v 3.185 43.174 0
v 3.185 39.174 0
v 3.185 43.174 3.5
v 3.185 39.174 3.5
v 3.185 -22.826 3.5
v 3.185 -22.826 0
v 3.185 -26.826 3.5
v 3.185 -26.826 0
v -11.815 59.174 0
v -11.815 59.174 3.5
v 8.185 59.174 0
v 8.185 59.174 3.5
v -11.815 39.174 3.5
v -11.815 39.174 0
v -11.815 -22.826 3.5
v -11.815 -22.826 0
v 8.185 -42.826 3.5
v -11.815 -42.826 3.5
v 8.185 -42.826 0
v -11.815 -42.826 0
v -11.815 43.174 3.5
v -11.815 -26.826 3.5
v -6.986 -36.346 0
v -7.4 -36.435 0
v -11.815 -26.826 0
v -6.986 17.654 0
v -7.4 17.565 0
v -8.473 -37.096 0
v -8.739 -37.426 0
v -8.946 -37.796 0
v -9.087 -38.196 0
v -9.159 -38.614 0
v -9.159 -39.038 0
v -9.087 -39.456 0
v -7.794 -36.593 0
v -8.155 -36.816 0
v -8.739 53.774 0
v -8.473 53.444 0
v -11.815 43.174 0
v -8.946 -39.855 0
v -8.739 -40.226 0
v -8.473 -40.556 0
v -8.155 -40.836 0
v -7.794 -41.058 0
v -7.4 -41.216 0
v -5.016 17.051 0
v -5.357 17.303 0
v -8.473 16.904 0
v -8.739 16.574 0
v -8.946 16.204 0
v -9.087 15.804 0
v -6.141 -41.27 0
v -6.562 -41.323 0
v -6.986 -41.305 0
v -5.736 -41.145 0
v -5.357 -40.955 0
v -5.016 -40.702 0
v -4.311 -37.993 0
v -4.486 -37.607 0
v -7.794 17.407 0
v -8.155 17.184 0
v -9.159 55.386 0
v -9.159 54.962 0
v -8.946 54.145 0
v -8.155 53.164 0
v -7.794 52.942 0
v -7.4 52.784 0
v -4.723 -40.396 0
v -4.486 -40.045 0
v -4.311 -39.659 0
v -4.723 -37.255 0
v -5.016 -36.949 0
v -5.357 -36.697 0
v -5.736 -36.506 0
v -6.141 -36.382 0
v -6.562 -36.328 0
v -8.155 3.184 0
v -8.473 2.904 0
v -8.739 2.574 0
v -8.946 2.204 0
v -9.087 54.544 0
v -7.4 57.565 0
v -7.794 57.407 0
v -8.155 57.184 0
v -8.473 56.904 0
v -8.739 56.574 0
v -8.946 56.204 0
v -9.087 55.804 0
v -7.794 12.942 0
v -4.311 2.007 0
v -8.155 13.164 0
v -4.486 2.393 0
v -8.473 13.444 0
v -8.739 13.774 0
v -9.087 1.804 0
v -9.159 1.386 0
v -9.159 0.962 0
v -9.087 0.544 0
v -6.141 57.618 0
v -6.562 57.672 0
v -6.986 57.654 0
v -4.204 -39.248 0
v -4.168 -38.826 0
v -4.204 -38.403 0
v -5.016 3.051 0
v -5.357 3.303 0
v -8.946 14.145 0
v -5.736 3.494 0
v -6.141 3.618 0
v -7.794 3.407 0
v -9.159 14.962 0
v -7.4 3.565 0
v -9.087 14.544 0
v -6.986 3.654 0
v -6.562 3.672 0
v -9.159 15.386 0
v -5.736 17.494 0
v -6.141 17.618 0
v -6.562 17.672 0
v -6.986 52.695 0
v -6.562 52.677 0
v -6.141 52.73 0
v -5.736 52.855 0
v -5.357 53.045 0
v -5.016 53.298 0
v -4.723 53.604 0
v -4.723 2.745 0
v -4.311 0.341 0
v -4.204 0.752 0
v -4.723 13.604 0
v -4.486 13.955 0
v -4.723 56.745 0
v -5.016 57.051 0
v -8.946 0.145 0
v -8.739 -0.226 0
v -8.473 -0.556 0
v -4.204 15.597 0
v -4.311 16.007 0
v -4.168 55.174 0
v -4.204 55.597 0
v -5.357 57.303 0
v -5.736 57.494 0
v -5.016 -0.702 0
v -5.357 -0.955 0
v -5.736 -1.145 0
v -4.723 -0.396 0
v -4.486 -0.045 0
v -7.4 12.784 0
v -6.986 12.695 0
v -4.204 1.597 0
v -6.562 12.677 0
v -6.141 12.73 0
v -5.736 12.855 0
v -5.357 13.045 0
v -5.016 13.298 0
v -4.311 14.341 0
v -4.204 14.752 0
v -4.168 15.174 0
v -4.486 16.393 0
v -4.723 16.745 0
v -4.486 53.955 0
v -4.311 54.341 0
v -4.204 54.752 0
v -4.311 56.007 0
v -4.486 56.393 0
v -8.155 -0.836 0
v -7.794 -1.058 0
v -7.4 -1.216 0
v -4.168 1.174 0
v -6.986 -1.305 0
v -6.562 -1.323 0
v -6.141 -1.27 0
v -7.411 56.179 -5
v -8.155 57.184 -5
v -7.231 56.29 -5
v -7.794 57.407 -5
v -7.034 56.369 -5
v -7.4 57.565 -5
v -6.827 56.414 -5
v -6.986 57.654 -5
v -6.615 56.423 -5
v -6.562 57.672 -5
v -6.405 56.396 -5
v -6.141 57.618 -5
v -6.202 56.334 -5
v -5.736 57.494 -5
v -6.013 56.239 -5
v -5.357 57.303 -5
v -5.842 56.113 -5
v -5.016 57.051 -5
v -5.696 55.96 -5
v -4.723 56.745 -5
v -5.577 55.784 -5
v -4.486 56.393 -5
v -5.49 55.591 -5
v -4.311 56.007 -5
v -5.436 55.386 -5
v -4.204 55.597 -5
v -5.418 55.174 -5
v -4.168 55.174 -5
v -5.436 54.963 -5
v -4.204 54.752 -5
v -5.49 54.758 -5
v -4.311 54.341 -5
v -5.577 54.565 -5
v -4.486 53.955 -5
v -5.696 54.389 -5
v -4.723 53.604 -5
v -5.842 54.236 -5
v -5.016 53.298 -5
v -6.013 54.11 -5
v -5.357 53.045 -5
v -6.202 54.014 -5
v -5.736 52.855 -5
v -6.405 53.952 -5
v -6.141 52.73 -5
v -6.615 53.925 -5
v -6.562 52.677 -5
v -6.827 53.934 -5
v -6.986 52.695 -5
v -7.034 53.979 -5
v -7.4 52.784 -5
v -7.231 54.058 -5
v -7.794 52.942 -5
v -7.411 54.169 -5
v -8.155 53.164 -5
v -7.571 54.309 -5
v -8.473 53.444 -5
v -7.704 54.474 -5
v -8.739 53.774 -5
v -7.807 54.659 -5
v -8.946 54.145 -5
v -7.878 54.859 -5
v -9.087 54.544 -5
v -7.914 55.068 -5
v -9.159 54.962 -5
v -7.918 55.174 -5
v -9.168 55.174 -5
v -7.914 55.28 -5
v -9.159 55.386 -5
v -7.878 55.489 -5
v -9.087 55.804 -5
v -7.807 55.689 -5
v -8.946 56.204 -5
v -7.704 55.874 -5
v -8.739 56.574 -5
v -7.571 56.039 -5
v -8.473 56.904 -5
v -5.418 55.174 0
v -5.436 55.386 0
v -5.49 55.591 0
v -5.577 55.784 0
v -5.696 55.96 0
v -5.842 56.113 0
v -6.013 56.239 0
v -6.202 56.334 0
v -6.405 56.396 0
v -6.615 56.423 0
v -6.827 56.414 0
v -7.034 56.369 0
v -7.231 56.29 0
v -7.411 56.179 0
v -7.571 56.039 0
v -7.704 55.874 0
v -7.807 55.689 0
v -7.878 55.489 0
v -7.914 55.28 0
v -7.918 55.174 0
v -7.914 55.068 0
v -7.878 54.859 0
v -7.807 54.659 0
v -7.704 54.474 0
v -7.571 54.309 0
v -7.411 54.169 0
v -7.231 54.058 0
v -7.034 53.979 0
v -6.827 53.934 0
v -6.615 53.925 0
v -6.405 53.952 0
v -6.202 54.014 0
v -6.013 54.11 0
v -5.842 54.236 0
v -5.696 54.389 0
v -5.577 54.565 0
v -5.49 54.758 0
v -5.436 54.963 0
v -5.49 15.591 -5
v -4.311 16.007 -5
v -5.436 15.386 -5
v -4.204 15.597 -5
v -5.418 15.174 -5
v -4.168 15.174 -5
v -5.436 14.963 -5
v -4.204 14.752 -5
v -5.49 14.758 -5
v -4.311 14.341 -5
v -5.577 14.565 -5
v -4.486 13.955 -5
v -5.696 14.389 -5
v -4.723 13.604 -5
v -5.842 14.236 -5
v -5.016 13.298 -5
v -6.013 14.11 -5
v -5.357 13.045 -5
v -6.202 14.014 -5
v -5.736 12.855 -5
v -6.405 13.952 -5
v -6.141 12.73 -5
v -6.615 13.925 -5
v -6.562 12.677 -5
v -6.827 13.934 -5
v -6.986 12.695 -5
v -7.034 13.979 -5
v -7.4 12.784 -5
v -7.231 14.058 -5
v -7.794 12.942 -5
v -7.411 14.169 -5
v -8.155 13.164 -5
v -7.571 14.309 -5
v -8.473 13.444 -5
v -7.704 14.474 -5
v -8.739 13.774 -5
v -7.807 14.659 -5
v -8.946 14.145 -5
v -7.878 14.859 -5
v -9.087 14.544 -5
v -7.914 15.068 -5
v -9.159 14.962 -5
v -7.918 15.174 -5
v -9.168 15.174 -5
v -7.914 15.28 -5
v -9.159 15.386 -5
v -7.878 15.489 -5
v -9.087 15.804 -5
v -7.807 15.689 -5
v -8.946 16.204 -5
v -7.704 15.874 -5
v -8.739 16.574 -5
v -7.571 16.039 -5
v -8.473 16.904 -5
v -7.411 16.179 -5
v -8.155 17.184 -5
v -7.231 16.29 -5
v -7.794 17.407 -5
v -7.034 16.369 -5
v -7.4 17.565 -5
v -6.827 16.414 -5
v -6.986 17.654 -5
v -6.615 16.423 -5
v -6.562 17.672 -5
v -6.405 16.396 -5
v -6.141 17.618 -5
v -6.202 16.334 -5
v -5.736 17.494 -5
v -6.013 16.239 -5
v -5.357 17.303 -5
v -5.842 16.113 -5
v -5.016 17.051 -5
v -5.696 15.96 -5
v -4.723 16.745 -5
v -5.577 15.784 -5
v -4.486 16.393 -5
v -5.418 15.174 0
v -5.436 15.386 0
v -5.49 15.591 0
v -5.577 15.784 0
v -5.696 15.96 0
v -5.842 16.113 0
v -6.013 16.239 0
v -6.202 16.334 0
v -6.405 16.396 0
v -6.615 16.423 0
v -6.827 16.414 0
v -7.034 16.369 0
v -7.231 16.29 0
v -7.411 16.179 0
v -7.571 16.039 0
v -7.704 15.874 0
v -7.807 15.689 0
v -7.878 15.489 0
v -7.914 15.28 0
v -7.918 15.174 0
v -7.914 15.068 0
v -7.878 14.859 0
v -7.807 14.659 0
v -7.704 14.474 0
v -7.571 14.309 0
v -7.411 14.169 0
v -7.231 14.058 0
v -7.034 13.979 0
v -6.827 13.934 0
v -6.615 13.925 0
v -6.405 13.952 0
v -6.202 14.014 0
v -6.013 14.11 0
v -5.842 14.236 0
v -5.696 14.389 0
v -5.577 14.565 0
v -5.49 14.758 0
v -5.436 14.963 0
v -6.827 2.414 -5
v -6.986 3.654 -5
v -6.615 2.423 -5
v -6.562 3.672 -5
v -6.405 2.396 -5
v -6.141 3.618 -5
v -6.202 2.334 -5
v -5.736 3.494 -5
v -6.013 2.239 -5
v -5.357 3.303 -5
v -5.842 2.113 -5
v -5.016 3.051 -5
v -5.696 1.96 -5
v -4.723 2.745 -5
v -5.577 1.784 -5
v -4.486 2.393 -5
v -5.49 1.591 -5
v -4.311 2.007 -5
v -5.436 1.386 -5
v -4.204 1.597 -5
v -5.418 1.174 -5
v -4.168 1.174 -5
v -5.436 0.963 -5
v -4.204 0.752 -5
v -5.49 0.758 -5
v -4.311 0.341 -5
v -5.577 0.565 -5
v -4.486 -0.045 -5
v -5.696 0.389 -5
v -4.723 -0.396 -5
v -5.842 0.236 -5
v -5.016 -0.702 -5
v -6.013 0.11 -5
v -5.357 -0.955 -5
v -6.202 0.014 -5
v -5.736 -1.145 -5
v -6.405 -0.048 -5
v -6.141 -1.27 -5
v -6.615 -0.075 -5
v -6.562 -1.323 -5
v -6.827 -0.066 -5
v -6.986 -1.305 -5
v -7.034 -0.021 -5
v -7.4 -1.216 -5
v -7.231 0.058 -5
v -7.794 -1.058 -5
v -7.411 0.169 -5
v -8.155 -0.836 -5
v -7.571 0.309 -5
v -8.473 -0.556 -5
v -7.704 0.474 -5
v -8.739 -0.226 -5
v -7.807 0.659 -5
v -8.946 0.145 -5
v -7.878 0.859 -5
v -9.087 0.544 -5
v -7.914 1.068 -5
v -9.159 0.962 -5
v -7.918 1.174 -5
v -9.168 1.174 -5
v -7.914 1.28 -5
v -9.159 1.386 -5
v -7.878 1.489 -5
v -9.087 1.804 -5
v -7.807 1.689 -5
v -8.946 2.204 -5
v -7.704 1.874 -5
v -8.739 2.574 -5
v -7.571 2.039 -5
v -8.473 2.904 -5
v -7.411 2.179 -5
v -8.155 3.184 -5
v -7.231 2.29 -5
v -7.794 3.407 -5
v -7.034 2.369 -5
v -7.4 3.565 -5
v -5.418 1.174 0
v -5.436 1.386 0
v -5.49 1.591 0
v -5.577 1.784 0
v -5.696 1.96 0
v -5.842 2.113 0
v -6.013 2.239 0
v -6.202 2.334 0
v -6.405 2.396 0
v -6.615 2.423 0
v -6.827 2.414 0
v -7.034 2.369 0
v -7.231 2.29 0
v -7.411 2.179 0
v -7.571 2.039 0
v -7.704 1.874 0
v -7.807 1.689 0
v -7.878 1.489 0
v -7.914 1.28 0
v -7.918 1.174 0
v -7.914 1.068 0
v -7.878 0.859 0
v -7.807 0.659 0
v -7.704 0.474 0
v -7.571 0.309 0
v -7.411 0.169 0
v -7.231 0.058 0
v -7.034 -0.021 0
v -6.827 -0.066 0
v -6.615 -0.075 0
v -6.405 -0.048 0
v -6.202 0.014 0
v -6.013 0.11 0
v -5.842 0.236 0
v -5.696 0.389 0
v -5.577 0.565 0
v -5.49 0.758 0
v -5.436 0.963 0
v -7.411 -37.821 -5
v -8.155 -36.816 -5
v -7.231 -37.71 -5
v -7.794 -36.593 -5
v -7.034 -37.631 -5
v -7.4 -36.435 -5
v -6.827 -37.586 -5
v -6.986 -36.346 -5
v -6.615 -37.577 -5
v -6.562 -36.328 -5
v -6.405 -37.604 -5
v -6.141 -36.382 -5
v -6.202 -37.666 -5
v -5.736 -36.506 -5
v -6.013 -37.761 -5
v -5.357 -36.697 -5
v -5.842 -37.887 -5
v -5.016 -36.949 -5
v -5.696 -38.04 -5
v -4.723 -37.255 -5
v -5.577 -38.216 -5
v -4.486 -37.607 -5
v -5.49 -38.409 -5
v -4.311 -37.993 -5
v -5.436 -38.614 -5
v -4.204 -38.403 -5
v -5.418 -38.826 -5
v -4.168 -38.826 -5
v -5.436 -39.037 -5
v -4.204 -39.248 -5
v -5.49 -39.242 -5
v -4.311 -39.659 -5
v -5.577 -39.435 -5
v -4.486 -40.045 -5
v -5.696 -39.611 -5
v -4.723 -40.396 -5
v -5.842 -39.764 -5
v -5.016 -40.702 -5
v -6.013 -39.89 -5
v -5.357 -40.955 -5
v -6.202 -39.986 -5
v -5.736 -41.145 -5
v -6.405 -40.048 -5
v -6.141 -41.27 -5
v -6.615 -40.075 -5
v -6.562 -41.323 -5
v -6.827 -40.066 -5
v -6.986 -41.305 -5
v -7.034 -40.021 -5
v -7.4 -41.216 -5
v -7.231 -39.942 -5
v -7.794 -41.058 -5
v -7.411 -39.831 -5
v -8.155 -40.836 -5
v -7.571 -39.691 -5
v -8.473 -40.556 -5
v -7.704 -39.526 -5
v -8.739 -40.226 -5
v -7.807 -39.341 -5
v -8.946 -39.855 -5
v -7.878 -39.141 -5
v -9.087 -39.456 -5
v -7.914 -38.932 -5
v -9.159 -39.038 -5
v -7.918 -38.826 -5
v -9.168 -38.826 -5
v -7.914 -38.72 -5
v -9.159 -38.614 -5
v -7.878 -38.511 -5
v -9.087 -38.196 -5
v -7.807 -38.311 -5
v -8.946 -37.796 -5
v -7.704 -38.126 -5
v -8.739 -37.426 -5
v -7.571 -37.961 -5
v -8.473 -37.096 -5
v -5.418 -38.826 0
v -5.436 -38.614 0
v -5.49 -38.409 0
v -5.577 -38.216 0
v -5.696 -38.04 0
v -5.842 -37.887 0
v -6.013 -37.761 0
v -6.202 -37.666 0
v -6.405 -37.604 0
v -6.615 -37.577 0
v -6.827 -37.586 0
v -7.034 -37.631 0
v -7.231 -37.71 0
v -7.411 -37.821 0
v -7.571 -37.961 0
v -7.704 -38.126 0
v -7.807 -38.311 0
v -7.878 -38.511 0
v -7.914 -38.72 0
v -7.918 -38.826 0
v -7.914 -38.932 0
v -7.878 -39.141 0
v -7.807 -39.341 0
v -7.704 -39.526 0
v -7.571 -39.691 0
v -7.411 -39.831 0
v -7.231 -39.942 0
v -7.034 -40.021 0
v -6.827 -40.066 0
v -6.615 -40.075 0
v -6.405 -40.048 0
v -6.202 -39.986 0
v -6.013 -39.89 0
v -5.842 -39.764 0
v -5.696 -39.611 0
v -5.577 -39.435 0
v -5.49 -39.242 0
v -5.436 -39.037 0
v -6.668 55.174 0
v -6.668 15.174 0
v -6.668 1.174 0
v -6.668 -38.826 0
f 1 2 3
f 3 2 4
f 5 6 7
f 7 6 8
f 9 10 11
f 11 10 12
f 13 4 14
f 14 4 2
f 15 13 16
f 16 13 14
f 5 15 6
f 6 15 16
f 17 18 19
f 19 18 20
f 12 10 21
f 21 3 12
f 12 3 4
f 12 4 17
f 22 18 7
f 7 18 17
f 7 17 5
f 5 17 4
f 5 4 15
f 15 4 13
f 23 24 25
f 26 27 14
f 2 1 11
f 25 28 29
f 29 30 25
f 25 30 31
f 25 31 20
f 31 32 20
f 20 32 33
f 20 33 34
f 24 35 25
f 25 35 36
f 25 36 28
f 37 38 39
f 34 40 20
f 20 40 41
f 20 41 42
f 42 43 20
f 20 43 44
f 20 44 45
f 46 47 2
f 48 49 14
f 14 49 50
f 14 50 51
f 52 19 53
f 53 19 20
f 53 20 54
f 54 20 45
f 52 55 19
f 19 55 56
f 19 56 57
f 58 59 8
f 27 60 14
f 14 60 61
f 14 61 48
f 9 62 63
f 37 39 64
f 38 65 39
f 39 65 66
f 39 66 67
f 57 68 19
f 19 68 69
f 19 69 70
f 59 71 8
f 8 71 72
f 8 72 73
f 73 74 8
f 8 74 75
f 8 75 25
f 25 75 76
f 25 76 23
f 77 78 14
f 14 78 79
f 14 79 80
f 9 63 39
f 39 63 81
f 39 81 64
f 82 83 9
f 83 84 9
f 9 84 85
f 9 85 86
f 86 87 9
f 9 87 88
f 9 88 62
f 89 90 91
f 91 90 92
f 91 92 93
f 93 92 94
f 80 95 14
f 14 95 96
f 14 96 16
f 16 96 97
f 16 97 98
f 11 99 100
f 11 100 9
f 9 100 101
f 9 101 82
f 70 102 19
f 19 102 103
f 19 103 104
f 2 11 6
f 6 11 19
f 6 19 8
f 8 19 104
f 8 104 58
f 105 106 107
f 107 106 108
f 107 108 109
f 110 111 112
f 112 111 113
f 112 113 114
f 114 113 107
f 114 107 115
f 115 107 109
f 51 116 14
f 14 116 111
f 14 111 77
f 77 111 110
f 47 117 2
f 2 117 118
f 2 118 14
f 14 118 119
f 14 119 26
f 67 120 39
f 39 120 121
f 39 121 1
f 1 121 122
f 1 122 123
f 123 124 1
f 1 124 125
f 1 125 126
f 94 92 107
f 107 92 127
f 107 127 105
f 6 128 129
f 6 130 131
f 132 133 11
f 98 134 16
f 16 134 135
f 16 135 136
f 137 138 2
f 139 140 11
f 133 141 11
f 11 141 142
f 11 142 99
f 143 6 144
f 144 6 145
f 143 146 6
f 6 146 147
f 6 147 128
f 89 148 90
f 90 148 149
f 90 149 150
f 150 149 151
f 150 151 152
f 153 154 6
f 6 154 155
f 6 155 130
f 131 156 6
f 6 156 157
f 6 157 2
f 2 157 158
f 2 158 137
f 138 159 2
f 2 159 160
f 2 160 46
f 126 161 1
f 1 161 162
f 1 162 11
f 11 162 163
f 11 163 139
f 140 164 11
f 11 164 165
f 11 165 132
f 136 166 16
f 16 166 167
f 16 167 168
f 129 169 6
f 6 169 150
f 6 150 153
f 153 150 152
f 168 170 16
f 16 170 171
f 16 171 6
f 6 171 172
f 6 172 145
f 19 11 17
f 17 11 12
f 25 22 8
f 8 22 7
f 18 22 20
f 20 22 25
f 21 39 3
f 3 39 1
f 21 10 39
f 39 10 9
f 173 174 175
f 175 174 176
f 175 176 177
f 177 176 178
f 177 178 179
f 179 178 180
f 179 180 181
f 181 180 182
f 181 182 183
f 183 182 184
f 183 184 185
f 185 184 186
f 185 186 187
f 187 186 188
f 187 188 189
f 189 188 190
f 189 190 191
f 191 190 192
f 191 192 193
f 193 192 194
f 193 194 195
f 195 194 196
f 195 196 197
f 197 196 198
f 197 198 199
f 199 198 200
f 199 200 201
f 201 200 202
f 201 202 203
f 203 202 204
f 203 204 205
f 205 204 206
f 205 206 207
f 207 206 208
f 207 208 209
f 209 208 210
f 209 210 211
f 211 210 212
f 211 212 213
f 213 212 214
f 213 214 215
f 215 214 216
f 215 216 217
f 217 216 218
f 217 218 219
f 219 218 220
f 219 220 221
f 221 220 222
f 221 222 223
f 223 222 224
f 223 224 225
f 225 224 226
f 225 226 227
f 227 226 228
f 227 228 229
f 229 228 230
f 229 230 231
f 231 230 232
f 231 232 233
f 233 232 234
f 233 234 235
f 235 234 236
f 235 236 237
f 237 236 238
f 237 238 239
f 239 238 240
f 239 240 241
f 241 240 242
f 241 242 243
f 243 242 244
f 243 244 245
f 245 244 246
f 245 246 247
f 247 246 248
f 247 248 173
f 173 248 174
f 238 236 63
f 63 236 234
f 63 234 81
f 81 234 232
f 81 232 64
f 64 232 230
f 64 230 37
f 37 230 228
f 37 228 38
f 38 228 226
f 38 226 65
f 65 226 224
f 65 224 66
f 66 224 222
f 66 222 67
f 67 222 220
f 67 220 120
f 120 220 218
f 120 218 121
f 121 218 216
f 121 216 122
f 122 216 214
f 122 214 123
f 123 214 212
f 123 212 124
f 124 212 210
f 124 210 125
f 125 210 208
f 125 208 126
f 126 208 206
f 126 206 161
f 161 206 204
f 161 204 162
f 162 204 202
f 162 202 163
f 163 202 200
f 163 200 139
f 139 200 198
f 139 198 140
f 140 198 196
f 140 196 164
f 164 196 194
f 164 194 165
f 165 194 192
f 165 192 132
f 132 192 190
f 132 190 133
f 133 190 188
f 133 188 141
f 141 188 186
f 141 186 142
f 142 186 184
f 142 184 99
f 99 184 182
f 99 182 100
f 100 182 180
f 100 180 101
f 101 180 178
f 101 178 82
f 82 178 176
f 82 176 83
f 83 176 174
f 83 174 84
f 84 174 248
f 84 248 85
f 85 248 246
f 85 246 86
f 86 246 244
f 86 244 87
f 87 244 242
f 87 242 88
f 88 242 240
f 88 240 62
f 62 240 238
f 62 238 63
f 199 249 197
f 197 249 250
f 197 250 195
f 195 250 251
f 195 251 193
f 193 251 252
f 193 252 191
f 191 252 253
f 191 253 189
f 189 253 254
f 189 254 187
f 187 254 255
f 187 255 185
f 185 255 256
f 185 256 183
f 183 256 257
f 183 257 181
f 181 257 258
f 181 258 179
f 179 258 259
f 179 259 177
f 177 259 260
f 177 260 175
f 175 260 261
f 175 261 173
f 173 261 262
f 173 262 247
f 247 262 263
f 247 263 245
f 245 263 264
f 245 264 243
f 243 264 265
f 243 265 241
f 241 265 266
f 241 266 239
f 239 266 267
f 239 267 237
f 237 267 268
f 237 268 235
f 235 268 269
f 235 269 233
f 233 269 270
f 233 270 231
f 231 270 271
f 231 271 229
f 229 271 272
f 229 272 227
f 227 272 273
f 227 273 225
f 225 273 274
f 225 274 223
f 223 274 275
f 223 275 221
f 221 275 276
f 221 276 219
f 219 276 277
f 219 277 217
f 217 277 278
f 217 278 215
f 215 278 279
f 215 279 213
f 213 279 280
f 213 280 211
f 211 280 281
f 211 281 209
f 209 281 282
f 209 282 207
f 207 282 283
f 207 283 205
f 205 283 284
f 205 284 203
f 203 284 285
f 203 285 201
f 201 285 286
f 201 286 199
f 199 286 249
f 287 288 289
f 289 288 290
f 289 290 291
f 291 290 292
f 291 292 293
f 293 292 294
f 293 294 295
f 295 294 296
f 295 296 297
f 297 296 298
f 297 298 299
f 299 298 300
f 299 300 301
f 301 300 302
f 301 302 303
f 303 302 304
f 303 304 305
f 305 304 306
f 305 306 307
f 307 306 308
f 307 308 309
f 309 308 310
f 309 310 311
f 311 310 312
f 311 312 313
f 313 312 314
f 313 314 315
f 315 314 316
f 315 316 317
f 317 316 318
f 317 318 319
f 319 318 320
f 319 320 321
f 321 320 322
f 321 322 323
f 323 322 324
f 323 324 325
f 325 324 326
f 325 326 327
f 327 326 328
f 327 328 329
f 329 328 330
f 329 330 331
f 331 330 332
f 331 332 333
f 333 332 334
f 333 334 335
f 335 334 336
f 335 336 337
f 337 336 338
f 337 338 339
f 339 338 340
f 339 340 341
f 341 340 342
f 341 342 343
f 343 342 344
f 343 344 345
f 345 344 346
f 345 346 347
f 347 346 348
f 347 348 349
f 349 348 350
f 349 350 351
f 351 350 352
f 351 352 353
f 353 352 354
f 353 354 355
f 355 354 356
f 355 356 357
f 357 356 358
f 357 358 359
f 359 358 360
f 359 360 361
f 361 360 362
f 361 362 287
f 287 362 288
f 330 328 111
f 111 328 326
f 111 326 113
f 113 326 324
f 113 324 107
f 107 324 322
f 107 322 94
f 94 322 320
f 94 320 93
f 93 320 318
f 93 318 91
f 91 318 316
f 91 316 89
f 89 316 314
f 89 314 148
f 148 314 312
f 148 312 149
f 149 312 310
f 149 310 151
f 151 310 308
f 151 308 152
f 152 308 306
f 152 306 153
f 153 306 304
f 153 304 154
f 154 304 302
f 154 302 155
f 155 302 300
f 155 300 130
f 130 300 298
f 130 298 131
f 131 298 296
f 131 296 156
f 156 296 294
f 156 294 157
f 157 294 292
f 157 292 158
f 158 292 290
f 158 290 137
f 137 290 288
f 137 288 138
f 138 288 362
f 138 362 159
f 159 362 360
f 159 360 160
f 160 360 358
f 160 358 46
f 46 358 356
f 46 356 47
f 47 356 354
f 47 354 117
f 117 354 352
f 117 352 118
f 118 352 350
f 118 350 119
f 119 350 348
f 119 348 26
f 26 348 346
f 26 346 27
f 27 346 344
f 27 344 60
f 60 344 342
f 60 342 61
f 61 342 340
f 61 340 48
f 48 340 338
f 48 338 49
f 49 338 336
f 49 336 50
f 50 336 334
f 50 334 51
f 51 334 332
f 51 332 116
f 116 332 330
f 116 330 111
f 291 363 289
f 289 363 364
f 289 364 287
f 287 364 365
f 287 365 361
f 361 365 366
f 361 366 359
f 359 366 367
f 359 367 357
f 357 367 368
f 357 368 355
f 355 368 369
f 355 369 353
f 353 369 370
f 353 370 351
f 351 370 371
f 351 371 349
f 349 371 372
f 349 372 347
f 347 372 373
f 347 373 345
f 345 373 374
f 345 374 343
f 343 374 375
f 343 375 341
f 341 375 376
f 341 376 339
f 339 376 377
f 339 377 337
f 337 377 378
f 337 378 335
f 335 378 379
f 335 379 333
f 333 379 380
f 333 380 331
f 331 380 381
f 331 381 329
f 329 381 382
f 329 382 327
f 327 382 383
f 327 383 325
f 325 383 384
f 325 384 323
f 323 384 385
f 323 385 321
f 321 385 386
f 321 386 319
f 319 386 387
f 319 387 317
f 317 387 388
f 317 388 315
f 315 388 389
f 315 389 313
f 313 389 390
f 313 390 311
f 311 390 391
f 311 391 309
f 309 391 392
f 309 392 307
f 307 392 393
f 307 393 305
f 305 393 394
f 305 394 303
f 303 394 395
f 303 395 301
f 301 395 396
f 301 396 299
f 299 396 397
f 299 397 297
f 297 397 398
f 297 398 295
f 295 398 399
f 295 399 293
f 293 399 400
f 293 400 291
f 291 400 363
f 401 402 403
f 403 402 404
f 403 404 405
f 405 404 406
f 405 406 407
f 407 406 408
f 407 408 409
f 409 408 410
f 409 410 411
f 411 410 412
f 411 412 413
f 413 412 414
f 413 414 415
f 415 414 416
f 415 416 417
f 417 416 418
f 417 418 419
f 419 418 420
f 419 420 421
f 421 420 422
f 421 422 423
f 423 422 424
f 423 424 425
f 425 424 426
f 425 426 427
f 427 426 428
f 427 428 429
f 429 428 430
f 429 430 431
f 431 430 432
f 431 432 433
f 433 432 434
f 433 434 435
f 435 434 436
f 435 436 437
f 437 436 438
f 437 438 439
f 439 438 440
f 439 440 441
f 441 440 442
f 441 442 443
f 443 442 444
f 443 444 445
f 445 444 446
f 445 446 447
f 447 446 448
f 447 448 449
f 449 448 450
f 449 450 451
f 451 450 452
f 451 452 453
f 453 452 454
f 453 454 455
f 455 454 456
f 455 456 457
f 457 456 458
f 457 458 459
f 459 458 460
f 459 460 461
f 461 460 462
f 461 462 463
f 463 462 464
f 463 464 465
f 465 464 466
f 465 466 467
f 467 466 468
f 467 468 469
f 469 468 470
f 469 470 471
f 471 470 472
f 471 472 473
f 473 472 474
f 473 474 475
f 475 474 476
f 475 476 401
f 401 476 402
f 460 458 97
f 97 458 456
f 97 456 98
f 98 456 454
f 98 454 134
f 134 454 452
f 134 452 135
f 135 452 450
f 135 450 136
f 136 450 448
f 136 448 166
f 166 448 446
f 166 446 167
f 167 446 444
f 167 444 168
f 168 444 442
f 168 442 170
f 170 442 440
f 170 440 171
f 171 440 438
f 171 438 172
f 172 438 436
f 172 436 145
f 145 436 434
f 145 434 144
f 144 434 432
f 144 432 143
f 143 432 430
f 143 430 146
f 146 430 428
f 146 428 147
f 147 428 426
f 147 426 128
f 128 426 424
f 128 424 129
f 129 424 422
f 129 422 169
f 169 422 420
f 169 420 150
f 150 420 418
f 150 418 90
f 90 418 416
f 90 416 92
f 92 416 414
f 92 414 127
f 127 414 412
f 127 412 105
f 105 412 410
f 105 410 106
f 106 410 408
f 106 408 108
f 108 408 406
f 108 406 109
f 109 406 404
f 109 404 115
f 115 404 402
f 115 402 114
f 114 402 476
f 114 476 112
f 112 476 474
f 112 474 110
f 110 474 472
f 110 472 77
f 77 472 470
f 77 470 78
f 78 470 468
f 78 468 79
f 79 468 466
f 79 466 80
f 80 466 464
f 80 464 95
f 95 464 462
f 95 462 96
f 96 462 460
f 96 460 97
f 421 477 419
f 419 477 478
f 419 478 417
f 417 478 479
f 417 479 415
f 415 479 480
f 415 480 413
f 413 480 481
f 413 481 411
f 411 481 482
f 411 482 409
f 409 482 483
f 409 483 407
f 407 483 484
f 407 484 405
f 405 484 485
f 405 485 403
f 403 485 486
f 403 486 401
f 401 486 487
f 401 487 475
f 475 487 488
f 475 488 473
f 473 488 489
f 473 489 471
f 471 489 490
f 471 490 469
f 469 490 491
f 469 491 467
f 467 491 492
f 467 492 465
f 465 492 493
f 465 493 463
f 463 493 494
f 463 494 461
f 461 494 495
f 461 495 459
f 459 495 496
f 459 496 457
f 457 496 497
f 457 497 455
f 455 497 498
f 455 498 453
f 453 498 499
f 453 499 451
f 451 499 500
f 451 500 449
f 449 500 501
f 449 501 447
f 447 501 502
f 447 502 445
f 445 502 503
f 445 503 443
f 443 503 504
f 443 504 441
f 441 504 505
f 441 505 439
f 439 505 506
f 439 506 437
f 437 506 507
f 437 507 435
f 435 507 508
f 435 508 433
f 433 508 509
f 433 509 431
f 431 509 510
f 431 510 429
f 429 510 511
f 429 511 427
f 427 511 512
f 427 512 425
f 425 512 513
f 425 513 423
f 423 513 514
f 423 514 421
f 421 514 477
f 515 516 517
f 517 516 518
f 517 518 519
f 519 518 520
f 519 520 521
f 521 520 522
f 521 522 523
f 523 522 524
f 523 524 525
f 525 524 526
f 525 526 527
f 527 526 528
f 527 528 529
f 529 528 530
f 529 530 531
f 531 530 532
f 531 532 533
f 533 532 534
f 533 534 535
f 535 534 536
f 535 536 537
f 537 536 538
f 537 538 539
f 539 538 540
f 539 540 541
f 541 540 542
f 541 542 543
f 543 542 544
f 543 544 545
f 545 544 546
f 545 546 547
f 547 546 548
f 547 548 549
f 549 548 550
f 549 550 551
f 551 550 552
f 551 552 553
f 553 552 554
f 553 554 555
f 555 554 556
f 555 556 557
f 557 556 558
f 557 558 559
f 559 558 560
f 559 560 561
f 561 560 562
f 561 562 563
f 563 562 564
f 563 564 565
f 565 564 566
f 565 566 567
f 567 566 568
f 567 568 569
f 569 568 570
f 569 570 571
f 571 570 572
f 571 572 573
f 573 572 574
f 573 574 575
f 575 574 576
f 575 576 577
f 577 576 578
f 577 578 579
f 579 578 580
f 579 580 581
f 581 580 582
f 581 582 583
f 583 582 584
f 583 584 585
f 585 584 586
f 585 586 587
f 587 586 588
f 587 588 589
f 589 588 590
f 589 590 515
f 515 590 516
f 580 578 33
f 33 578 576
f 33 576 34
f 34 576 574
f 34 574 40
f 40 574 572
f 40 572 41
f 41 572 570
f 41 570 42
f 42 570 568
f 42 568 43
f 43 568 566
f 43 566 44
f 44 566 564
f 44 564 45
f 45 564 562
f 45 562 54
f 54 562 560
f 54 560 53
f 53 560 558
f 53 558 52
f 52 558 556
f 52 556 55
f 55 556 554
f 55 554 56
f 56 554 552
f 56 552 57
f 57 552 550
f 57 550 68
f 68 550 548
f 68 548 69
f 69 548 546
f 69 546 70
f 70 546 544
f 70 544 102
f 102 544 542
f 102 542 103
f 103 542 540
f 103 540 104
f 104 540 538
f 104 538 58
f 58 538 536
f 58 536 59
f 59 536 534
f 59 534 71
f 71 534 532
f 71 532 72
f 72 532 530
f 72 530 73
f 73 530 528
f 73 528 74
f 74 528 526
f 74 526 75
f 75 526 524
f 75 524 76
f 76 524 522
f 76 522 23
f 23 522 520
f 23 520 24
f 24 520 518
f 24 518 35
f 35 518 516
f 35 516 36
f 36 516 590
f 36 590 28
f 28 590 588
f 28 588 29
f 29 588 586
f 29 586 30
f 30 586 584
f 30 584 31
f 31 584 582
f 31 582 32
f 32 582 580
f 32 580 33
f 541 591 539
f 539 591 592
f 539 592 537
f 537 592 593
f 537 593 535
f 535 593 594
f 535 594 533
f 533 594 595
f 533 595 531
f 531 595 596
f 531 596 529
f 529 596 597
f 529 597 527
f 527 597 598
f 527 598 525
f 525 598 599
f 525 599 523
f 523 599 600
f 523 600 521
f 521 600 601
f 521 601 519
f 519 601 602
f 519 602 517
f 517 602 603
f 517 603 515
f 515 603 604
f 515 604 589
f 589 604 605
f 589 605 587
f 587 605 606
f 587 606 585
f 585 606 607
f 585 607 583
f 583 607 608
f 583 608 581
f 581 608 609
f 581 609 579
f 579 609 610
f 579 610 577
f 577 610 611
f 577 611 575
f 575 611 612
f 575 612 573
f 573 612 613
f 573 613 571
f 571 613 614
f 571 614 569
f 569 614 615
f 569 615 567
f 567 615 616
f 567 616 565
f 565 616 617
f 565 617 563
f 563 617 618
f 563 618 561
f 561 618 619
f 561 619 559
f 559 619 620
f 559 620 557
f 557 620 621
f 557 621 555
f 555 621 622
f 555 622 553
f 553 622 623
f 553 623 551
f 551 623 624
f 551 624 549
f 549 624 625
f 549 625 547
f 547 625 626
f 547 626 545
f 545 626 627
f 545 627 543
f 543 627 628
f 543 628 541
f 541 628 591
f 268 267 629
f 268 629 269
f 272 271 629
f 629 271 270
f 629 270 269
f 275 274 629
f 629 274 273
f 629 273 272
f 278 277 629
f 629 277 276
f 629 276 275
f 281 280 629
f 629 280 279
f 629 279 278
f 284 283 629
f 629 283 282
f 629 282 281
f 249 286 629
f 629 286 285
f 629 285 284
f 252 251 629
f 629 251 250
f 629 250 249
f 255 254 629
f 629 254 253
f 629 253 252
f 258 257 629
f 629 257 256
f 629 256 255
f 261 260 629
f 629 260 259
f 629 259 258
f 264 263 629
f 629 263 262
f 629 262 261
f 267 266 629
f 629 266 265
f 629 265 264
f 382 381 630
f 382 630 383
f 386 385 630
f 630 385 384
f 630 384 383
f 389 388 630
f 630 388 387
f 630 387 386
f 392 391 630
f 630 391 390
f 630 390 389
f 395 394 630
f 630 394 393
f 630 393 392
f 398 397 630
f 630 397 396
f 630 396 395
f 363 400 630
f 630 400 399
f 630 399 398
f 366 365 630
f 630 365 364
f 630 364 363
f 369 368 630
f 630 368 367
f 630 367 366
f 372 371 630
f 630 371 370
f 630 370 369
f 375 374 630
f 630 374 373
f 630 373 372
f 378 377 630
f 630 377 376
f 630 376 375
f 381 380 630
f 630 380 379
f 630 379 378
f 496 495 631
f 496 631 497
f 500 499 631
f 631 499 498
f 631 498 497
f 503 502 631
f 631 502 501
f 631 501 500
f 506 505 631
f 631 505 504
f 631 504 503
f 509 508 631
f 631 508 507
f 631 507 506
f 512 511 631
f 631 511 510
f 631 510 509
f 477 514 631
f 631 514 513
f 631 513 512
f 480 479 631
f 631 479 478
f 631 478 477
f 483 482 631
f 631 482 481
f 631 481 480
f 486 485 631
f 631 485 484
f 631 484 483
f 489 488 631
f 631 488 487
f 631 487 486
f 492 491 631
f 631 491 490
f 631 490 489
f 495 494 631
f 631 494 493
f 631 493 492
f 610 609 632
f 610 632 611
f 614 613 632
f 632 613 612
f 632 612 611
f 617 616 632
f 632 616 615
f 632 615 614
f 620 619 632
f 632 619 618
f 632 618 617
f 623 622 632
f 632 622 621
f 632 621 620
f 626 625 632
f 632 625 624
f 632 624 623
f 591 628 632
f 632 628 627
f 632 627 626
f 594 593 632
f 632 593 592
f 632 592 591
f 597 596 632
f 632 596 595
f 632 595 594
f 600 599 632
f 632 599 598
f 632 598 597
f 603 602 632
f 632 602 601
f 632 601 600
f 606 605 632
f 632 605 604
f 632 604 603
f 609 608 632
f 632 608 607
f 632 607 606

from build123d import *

# Parameters (mm, degrees)
EXTRUDE_1_DEPTH     = 3.5
SKETCH_2_W          = 60
SKETCH_2_H          = 102
CUT_EXTRUDE_1_DEPTH = 3.5
SKETCH_7_W          = 3.5
SKETCH_7_H          = 16
EXTRUDE_3_DEPTH     = 15
SKETCH_6_R          = 2.5
SKETCH_6_R_2        = 1.25
EXTRUDE_2_DEPTH     = 5


with BuildPart() as part:
    # 草图1 → 凸台-拉伸1 (new body)
    with BuildSketch(Plane.XY):
        Polygon((68.184988255, 39.174258776), (68.184988255, -22.825741224), (68.184988255, -42.825741224), (3.184988255, -42.825741224), (3.184988255, -22.825741224), (-11.815011745, -22.825741224), (-11.815011745, 39.174258776), (3.184988255, 39.174258776), (3.184988255, 59.174258776), (68.184988255, 59.174258776), align=None)
    extrude(amount=EXTRUDE_1_DEPTH)

    # 草图2 → 切除-拉伸1 (cut)
    with BuildSketch(Plane.XY.offset(3.5)):
        with Locations((38.184988255, 8.174258776)):
            Rectangle(SKETCH_2_W, SKETCH_2_H)
    extrude(amount=-CUT_EXTRUDE_1_DEPTH, mode=Mode.SUBTRACT)

    # 草图7 → 凸台-拉伸3 (add)
    with BuildSketch(Plane.ZY.offset(-3.184988255)):
        with Locations((1.75, 51.174258776)):
            Rectangle(SKETCH_7_W, SKETCH_7_H)
        with Locations((1.75, -34.825741224)):
            Rectangle(SKETCH_7_W, SKETCH_7_H)
    extrude(amount=EXTRUDE_3_DEPTH)

    # 草图6 → 凸台-拉伸2 (add)
    # profile 1 of 4: a face of its own
    with BuildSketch(Plane(origin=(0, 0, 0), x_dir=(-1, 0, 0), z_dir=(0, 0, -1))):
        with Locations(Location((6.668106828, -38.825741224, 0), (0, 0, 180))):
            Circle(SKETCH_6_R)
        with Locations((6.668106828, -38.825741224)):
            Circle(SKETCH_6_R_2, mode=Mode.SUBTRACT)
    # profile 2 of 4: a face of its own
    with BuildSketch(Plane(origin=(0, 0, 0), x_dir=(-1, 0, 0), z_dir=(0, 0, -1))):
        with Locations(Location((6.668106828, 1.174258776, 0), (0, 0, 180))):
            Circle(SKETCH_6_R)
        with Locations((6.668106828, 1.174258776)):
            Circle(SKETCH_6_R_2, mode=Mode.SUBTRACT)
    # profile 3 of 4: a face of its own
    with BuildSketch(Plane(origin=(0, 0, 0), x_dir=(-1, 0, 0), z_dir=(0, 0, -1))):
        with Locations(Location((6.668106828, 15.174258776, 0), (0, 0, 180))):
            Circle(SKETCH_6_R)
        with Locations((6.668106828, 15.174258776)):
            Circle(SKETCH_6_R_2, mode=Mode.SUBTRACT)
    # profile 4 of 4: a face of its own
    with BuildSketch(Plane(origin=(0, 0, 0), x_dir=(-1, 0, 0), z_dir=(0, 0, -1))):
        with Locations(Location((6.668106828, 55.174258776, 0), (0, 0, 180))):
            Circle(SKETCH_6_R)
        with Locations((6.668106828, 55.174258776)):
            Circle(SKETCH_6_R_2, mode=Mode.SUBTRACT)
    extrude(amount=EXTRUDE_2_DEPTH)


solid = part.part
